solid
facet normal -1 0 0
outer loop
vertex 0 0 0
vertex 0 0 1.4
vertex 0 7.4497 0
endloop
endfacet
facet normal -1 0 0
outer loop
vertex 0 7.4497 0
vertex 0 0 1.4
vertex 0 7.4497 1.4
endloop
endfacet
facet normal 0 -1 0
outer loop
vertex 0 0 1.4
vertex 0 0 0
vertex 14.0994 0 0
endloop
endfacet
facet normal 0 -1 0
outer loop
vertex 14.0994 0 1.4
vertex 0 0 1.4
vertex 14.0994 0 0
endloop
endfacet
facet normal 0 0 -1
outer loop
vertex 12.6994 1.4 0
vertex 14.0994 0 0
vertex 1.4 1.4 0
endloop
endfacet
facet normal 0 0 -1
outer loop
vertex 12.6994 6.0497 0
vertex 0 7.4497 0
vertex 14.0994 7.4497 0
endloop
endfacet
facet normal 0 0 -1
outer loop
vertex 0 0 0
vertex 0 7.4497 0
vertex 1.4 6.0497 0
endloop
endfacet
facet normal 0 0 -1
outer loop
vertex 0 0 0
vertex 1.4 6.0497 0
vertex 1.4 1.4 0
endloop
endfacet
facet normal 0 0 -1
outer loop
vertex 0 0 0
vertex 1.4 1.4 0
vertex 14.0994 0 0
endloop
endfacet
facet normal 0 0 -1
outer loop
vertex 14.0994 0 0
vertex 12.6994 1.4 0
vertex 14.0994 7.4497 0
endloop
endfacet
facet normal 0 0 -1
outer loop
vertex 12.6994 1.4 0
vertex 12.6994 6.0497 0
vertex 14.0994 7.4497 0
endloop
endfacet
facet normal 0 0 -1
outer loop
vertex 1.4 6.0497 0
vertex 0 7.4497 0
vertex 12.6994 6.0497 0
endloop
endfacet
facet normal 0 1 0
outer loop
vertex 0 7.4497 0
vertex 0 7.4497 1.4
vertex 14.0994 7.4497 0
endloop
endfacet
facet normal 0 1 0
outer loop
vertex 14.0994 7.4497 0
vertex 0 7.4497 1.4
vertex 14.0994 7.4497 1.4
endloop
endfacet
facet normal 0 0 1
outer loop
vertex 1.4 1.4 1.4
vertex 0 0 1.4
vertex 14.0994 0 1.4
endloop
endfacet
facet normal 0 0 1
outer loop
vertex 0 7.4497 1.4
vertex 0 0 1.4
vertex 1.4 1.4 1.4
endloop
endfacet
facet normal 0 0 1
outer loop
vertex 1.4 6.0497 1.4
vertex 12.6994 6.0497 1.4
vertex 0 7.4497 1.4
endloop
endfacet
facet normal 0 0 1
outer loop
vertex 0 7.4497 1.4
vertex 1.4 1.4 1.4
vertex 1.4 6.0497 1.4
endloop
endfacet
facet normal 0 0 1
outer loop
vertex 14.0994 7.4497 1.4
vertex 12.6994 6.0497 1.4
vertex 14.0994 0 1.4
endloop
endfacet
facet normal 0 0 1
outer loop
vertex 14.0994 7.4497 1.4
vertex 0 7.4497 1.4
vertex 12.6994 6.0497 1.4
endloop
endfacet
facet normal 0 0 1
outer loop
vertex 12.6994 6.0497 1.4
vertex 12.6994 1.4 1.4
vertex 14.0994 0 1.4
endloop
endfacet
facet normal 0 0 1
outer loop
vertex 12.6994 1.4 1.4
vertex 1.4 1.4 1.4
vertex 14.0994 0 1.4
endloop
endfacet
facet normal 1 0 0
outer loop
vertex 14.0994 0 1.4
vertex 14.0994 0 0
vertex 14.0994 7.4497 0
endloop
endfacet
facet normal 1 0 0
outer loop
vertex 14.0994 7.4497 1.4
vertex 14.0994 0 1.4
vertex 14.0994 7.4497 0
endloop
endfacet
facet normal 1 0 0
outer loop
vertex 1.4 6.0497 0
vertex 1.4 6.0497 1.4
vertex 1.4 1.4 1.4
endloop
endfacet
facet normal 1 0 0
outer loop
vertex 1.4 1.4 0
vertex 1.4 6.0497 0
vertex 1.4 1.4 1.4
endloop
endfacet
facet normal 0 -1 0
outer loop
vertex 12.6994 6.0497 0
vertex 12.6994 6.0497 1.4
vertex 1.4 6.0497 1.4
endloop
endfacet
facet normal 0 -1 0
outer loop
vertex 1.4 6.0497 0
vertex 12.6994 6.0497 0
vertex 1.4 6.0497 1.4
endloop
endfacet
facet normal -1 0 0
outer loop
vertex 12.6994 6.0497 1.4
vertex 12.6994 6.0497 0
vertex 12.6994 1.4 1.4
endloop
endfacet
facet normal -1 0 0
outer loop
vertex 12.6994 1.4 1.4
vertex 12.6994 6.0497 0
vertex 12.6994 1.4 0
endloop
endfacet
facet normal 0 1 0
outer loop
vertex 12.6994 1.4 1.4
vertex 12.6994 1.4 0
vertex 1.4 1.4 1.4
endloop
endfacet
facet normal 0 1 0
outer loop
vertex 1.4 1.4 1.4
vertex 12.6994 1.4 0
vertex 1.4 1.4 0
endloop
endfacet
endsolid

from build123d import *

# Parameters (mm, degrees)
SKETCH1_W           = 14.098000526
SKETCH1_H           = 7.448000431
SKETCH1_W_2         = 11.300000787
SKETCH1_H_2         = 4.650000215
BOSS_EXTRUDE1_DEPTH = 1.398000121


with BuildPart() as part:
    # Sketch1 → Boss-Extrude1 (new body)
    with BuildSketch(Plane.XY.offset(1.398000121)):
        with Locations((7.049000263, 3.724000216)):
            Rectangle(SKETCH1_W, SKETCH1_H)
        with Locations((7.048000515, 3.723000229)):
            Rectangle(SKETCH1_W_2, SKETCH1_H_2, mode=Mode.SUBTRACT)
    extrude(amount=-BOSS_EXTRUDE1_DEPTH)


solid = part.part
